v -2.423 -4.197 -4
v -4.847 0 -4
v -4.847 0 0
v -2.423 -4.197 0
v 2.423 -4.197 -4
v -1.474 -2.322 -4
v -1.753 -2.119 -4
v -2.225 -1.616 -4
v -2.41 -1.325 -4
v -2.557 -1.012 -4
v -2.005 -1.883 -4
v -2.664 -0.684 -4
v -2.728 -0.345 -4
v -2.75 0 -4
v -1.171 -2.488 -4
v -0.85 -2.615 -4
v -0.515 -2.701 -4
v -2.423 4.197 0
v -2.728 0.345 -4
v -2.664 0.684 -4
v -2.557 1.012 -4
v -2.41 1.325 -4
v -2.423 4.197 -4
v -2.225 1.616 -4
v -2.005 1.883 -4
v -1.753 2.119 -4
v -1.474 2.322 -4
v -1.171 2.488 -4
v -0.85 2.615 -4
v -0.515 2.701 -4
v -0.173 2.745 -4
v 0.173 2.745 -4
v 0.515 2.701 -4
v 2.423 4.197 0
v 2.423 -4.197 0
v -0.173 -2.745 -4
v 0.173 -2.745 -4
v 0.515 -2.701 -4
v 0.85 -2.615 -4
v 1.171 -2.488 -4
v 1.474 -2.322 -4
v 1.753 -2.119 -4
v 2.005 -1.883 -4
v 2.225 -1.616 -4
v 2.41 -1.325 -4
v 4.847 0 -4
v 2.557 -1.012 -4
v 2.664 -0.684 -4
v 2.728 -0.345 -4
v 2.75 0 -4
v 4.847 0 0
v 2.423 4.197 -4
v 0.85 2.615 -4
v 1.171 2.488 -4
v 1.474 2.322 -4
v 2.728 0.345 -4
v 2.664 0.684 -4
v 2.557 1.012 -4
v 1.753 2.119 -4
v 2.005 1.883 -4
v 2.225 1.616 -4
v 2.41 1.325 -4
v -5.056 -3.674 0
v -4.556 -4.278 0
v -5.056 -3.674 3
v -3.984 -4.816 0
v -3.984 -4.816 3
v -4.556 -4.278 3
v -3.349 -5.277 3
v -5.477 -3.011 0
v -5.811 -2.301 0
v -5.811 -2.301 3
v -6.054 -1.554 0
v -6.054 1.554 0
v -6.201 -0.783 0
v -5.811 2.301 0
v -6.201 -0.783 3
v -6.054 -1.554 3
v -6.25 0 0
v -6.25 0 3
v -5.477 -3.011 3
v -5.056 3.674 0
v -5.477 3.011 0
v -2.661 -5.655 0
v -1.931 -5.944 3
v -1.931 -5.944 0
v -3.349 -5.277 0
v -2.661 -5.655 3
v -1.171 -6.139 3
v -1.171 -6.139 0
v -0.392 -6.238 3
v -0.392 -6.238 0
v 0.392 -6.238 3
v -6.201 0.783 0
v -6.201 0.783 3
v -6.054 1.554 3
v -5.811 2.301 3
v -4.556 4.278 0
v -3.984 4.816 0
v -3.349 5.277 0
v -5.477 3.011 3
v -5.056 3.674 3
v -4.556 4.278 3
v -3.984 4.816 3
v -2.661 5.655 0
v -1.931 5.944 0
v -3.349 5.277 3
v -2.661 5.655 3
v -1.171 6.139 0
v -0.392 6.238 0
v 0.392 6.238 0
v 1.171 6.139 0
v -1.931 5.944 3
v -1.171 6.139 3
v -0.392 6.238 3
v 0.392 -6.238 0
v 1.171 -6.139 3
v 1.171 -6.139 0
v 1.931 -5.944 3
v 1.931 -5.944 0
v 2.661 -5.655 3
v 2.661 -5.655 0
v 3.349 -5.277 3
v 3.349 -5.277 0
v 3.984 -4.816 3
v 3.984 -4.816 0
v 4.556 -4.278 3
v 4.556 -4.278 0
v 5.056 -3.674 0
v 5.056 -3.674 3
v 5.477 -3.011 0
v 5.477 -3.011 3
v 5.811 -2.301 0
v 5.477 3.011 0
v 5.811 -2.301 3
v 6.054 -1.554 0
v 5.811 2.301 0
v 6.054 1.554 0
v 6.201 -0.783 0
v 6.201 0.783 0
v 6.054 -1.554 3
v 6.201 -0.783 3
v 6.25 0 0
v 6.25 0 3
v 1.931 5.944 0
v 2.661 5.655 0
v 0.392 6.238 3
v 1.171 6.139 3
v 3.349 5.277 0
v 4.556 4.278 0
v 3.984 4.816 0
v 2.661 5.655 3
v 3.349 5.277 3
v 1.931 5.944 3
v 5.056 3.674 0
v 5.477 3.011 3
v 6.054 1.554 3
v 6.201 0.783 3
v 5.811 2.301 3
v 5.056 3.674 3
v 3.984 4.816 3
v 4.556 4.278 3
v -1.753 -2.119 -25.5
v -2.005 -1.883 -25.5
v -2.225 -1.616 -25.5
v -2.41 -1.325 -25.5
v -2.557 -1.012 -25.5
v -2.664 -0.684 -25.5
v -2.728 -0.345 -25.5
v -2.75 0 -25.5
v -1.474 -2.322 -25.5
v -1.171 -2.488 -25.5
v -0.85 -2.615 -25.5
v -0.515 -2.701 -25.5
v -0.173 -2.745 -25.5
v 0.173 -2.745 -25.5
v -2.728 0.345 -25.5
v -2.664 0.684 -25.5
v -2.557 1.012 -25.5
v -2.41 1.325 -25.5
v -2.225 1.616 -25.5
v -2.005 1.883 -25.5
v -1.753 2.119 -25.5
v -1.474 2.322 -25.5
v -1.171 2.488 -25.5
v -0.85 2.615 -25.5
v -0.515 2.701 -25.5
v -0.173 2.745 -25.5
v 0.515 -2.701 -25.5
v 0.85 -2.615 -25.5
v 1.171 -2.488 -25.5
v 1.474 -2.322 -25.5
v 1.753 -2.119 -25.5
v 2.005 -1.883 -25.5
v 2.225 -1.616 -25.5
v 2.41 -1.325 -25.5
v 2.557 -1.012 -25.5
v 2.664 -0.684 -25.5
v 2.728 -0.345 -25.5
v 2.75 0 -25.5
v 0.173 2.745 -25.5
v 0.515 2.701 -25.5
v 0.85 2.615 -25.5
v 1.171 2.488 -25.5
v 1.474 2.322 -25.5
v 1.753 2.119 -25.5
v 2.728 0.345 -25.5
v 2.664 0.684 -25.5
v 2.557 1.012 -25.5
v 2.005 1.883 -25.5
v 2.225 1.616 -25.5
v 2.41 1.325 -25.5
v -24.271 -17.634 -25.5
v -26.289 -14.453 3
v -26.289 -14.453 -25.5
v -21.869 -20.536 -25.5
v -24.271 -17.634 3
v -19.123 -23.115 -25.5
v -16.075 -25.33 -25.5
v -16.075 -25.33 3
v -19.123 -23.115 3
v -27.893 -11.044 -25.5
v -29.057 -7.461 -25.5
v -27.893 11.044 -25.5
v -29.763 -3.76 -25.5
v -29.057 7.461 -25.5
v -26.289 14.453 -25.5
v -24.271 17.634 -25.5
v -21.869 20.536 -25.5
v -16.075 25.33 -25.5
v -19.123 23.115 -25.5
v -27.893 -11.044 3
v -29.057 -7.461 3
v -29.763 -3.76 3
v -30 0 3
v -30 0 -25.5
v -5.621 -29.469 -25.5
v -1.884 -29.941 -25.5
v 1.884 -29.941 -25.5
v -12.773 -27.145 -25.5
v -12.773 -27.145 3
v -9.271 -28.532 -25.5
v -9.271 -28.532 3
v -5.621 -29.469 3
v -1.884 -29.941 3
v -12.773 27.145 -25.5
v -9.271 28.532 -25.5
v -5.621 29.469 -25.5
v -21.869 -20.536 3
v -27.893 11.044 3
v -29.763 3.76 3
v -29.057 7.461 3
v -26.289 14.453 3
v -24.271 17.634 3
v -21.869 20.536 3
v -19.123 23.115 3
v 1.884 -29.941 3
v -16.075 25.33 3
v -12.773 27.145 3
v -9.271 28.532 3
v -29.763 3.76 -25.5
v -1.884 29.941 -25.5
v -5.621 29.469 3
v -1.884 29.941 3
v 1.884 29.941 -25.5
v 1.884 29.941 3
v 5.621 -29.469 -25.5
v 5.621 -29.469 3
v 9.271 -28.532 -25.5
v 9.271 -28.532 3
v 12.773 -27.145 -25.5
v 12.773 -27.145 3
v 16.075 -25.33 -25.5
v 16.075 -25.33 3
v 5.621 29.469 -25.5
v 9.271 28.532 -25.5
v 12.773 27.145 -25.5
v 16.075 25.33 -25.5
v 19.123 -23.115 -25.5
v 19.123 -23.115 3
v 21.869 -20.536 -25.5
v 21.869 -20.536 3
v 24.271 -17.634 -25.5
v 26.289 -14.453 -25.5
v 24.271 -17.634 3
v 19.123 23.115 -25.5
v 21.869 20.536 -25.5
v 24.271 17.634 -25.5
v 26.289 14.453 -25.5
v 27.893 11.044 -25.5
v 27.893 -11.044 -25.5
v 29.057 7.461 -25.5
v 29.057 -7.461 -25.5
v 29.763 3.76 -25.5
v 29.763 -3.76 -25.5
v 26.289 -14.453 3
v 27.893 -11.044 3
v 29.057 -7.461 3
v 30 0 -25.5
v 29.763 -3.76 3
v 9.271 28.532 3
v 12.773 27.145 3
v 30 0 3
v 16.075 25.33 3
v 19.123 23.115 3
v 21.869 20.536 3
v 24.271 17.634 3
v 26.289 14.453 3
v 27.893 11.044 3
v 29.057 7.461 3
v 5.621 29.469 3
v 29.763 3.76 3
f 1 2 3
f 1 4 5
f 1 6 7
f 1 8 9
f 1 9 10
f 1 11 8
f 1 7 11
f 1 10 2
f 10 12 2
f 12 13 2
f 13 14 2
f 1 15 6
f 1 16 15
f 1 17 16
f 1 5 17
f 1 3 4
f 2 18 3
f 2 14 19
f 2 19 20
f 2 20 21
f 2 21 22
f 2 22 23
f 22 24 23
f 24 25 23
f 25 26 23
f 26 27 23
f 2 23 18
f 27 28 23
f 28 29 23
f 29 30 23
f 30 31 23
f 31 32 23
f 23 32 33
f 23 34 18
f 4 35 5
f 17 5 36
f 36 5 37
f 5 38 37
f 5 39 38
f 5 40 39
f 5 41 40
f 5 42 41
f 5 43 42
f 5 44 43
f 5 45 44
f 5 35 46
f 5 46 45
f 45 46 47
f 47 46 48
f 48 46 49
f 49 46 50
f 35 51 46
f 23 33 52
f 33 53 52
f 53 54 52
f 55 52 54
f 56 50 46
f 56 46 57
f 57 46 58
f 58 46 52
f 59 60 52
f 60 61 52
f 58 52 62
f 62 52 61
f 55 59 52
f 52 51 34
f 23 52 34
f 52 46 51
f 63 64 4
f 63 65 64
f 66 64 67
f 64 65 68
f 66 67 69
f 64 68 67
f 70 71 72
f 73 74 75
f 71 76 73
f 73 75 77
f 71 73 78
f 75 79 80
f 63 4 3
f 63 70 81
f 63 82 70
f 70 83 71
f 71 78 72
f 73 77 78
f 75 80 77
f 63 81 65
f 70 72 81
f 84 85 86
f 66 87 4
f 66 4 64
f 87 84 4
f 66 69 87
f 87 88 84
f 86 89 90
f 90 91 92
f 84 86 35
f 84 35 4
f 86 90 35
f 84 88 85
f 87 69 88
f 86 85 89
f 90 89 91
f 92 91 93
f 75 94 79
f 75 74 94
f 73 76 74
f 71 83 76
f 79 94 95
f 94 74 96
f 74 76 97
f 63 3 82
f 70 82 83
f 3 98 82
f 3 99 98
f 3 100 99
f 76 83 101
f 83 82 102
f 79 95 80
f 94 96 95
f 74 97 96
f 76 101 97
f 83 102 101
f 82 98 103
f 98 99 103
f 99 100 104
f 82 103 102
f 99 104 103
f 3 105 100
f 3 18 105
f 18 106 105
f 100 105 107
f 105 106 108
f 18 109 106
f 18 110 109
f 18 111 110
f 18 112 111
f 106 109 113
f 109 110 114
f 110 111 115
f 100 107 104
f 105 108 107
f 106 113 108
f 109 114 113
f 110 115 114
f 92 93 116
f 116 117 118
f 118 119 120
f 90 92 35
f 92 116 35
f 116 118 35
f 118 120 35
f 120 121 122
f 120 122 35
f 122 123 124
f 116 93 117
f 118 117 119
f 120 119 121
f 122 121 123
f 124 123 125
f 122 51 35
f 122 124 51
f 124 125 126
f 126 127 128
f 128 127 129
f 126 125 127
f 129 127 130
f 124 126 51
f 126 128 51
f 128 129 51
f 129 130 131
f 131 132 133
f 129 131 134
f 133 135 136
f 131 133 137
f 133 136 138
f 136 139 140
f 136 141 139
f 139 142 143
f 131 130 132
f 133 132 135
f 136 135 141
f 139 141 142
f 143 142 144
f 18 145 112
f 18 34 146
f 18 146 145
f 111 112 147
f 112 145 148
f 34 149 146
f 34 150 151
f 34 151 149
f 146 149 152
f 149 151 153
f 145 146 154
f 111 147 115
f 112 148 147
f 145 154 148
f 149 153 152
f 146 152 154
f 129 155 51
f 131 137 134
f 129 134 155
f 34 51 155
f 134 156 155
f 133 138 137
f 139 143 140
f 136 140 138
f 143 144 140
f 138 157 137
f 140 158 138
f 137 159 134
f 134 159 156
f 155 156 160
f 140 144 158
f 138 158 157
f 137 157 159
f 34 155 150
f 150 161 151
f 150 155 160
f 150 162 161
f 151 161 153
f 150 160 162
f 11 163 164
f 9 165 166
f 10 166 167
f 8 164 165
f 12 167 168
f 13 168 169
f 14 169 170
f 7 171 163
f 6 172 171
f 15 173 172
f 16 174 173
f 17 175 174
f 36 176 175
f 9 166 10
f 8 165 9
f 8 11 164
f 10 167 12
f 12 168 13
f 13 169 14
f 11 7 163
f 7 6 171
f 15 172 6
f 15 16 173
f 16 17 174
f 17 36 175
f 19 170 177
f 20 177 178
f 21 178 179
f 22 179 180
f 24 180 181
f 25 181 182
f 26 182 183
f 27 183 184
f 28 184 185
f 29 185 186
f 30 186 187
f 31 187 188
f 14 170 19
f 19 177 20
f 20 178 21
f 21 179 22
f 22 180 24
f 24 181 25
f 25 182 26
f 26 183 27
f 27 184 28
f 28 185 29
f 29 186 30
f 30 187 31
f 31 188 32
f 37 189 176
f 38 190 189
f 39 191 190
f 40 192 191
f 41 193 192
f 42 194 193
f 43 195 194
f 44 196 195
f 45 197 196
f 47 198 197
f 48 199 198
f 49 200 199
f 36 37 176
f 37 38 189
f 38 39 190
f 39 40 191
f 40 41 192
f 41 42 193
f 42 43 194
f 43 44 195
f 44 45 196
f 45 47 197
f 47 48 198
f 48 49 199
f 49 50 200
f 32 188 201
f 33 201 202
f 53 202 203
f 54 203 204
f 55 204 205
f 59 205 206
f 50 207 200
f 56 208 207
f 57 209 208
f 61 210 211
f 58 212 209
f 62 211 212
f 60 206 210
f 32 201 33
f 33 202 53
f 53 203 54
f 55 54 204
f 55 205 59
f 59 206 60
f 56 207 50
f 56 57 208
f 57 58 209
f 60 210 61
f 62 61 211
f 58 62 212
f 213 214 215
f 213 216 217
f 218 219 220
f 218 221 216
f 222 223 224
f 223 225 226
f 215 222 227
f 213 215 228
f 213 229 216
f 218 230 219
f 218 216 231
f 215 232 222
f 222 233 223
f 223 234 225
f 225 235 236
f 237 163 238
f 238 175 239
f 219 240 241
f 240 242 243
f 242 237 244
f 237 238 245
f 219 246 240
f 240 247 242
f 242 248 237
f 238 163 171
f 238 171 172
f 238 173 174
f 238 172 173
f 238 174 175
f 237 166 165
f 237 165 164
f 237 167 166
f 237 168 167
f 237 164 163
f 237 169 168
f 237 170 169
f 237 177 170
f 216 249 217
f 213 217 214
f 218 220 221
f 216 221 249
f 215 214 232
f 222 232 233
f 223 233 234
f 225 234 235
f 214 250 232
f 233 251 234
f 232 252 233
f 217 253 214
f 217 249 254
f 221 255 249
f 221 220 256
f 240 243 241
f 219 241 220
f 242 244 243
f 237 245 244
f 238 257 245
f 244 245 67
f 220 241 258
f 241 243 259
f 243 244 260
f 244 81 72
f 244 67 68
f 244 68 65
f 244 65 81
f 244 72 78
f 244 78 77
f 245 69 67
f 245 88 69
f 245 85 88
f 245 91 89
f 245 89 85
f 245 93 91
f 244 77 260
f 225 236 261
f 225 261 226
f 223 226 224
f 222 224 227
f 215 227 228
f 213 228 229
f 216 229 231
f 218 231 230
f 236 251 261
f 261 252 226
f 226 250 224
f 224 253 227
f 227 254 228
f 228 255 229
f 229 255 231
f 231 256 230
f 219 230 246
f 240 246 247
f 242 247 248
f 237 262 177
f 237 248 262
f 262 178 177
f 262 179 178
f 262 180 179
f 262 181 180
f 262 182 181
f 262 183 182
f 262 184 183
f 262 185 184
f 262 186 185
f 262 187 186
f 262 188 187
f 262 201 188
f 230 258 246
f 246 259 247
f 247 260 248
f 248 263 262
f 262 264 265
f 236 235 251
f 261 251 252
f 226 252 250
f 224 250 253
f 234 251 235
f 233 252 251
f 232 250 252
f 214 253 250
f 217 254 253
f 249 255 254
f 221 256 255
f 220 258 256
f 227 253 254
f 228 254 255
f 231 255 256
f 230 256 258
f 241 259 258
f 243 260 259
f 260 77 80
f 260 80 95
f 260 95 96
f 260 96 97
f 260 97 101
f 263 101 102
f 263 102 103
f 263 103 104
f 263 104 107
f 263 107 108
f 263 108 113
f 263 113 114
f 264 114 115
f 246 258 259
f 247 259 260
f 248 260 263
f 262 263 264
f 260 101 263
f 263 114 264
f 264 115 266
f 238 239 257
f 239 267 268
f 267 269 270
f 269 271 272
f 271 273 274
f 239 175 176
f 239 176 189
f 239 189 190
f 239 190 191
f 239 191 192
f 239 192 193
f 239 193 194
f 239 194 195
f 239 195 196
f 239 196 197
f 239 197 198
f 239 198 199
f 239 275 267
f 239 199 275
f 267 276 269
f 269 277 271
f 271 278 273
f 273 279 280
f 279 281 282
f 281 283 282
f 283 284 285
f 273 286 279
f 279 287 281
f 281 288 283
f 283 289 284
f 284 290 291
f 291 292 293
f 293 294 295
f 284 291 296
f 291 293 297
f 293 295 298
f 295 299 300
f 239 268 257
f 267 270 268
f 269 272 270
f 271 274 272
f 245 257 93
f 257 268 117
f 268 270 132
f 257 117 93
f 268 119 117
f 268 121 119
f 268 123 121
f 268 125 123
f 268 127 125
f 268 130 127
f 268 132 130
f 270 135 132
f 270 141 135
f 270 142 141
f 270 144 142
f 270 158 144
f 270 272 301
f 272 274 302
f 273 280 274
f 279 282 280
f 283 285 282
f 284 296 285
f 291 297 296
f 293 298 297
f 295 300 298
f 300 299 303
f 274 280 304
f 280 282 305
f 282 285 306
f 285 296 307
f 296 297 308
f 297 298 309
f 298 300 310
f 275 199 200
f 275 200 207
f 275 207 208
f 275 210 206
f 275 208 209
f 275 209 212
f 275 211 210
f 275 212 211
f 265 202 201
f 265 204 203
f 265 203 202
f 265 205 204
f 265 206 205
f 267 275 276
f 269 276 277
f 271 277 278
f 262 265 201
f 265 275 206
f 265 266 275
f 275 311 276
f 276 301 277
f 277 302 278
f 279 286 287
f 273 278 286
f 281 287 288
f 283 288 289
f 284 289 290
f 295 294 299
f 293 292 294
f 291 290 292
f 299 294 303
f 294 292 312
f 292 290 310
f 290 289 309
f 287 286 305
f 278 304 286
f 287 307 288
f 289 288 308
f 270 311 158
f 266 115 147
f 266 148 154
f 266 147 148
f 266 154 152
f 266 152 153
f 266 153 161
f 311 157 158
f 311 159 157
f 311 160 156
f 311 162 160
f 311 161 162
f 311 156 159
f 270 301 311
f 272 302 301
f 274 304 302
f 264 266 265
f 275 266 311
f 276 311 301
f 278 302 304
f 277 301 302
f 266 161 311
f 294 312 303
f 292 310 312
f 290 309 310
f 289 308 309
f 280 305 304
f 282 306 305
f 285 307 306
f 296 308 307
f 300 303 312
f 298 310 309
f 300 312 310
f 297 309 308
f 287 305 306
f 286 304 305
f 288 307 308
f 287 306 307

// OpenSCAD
$fn = 50;


difference() {
	union() {
		translate(v = [0, 0, -25.5000000000]) {
			cylinder(h = 28.5000000000, r = 30.0000000000);
		}
	}
	union() {
		translate(v = [0, 0, 0]) {
			rotate(a = [0, 0, 0]) {
				difference() {
					union() {
						translate(v = [0, 0, -4]) {
							linear_extrude(height = 4) {
								polygon(points = [[4.8468000000, 0.0000000000], [2.4234000000, 4.1974519271], [-2.4234000000, 4.1974519271], [-4.8468000000, 0.0000000000], [-2.4234000000, -4.1974519271], [2.4234000000, -4.1974519271]]);
							}
						}
					}
					union();
				}
			}
		}
		#cylinder(h = 3, r = 6.2500000000);
		#translate(v = [0, 0, -100.0000000000]) {
			cylinder(h = 200, r = 2.7500000000);
		}
	}
}
